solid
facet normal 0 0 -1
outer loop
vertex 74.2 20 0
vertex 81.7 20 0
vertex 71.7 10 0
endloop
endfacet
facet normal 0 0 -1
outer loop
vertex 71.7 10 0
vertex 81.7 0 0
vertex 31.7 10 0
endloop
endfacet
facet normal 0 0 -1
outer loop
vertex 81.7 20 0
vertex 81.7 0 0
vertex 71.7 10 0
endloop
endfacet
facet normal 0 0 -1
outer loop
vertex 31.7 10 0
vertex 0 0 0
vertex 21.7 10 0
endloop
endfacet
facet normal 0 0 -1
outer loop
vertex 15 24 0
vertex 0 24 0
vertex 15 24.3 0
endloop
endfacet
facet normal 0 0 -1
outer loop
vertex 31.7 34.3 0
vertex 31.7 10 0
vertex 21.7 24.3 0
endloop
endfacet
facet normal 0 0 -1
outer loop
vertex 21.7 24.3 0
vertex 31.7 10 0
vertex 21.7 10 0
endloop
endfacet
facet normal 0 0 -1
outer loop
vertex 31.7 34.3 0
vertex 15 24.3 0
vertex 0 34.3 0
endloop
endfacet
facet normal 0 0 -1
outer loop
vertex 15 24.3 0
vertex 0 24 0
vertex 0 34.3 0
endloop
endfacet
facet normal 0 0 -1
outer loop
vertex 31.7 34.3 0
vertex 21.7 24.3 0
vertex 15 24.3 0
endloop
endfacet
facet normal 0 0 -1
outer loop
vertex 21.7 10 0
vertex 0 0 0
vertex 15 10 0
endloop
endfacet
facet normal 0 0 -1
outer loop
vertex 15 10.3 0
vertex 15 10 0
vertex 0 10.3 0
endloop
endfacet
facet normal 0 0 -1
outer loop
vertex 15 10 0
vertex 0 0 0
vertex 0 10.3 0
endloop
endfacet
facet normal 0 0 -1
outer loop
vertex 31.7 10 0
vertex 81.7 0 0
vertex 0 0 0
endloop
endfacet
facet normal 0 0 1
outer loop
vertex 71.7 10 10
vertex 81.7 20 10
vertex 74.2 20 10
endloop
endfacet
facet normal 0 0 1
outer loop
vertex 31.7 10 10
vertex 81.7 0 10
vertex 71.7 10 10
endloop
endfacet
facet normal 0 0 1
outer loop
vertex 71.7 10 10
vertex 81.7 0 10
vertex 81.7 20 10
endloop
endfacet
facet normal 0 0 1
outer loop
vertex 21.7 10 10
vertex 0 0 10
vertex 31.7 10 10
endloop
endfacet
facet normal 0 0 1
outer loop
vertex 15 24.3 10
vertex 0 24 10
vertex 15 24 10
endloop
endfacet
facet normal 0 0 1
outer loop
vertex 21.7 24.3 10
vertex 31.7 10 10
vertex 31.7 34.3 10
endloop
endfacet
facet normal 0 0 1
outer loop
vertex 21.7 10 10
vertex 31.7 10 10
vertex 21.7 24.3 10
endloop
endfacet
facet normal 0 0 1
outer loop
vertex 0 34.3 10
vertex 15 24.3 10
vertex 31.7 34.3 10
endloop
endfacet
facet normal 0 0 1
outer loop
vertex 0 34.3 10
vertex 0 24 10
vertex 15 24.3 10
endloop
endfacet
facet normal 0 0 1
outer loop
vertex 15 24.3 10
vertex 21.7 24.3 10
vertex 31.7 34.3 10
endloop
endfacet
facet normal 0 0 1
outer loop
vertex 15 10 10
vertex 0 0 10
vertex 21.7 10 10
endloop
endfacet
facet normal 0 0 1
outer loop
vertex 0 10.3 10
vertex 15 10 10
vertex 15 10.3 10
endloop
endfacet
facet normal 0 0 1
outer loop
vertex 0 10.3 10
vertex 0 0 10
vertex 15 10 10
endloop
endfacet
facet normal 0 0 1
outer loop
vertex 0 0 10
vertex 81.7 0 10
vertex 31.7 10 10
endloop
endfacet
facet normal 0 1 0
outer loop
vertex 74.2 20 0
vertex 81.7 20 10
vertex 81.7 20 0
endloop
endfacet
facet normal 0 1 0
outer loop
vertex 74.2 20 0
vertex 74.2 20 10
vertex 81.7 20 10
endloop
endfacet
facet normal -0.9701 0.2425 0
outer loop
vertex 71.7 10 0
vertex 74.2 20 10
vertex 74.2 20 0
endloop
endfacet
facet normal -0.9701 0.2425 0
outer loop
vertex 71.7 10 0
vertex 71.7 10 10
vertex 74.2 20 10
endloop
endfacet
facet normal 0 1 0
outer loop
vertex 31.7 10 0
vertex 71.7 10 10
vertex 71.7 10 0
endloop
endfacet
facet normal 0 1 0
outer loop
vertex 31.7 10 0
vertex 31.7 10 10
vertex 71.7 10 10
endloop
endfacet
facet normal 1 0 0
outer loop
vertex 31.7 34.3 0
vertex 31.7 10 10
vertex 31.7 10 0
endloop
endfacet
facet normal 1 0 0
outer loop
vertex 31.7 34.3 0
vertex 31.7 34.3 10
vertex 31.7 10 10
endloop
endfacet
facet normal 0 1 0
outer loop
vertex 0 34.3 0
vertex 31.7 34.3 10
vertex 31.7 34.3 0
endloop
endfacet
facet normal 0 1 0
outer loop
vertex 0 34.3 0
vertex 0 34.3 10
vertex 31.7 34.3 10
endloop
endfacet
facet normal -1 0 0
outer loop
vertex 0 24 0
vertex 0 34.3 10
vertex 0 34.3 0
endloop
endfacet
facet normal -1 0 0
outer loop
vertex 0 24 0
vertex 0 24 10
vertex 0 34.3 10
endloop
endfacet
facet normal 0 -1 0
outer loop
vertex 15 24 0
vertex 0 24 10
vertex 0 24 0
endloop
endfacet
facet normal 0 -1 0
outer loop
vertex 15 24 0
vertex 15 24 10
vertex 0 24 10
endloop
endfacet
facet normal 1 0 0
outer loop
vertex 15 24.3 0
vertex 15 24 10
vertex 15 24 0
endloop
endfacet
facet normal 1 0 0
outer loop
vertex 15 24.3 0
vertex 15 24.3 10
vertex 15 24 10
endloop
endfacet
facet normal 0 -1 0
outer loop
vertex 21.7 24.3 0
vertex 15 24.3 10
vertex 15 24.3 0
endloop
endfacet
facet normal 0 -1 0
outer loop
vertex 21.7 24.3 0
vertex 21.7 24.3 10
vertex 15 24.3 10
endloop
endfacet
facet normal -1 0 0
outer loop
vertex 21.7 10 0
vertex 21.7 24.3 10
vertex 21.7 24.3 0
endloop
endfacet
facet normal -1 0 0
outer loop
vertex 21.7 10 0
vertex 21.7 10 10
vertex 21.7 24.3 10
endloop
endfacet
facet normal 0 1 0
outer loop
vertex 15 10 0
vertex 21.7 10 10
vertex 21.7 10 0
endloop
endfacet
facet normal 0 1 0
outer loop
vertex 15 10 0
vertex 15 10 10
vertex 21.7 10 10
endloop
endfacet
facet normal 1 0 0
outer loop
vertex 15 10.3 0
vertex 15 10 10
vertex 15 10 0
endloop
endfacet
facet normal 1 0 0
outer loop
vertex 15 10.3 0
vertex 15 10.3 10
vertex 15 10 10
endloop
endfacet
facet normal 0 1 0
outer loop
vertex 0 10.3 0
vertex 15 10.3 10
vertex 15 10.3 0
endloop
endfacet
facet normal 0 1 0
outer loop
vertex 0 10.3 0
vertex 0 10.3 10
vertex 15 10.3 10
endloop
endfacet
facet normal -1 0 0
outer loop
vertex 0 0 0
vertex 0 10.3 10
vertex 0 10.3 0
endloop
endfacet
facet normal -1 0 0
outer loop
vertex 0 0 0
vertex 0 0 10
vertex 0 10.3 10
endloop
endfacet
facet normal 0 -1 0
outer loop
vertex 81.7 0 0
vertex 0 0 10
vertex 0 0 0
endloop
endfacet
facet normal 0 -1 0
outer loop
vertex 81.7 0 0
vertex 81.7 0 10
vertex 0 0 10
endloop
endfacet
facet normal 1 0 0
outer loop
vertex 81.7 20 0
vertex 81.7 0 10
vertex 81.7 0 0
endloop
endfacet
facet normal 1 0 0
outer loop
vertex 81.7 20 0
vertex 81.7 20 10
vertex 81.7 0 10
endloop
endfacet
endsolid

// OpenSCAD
$fa = 1;
$fs = 0.2;

molding_height = 14.3 ;
platform_height = 23.3 -9.6;
headphone_width = 40;
tab_height = 10;

modling_width = 6.7;
width = 10;

grab_length = 15;

points = [
    [0,0],
    [0, width+(molding_height-platform_height)/2],
    [grab_length, width+(molding_height-platform_height)/2],
    [grab_length, width],
    [grab_length+modling_width, width],
    [grab_length+modling_width, width+molding_height],
    [grab_length, width+molding_height],
    [grab_length, width+platform_height+(molding_height-platform_height)/2],
    [0, width+platform_height+(molding_height-platform_height)/2],
    [0, 2*width+molding_height],
    [grab_length+modling_width+width, 2*width+molding_height],
    [grab_length+modling_width+width, width],
    [grab_length+modling_width+width+headphone_width, width],
    [grab_length+modling_width+width+headphone_width+width/4, width+tab_height],
    [grab_length+modling_width+width+headphone_width+width, width+tab_height],
    [grab_length+modling_width+width+headphone_width+width, 0],
];

linear_extrude(height = width) 
polygon(points);
